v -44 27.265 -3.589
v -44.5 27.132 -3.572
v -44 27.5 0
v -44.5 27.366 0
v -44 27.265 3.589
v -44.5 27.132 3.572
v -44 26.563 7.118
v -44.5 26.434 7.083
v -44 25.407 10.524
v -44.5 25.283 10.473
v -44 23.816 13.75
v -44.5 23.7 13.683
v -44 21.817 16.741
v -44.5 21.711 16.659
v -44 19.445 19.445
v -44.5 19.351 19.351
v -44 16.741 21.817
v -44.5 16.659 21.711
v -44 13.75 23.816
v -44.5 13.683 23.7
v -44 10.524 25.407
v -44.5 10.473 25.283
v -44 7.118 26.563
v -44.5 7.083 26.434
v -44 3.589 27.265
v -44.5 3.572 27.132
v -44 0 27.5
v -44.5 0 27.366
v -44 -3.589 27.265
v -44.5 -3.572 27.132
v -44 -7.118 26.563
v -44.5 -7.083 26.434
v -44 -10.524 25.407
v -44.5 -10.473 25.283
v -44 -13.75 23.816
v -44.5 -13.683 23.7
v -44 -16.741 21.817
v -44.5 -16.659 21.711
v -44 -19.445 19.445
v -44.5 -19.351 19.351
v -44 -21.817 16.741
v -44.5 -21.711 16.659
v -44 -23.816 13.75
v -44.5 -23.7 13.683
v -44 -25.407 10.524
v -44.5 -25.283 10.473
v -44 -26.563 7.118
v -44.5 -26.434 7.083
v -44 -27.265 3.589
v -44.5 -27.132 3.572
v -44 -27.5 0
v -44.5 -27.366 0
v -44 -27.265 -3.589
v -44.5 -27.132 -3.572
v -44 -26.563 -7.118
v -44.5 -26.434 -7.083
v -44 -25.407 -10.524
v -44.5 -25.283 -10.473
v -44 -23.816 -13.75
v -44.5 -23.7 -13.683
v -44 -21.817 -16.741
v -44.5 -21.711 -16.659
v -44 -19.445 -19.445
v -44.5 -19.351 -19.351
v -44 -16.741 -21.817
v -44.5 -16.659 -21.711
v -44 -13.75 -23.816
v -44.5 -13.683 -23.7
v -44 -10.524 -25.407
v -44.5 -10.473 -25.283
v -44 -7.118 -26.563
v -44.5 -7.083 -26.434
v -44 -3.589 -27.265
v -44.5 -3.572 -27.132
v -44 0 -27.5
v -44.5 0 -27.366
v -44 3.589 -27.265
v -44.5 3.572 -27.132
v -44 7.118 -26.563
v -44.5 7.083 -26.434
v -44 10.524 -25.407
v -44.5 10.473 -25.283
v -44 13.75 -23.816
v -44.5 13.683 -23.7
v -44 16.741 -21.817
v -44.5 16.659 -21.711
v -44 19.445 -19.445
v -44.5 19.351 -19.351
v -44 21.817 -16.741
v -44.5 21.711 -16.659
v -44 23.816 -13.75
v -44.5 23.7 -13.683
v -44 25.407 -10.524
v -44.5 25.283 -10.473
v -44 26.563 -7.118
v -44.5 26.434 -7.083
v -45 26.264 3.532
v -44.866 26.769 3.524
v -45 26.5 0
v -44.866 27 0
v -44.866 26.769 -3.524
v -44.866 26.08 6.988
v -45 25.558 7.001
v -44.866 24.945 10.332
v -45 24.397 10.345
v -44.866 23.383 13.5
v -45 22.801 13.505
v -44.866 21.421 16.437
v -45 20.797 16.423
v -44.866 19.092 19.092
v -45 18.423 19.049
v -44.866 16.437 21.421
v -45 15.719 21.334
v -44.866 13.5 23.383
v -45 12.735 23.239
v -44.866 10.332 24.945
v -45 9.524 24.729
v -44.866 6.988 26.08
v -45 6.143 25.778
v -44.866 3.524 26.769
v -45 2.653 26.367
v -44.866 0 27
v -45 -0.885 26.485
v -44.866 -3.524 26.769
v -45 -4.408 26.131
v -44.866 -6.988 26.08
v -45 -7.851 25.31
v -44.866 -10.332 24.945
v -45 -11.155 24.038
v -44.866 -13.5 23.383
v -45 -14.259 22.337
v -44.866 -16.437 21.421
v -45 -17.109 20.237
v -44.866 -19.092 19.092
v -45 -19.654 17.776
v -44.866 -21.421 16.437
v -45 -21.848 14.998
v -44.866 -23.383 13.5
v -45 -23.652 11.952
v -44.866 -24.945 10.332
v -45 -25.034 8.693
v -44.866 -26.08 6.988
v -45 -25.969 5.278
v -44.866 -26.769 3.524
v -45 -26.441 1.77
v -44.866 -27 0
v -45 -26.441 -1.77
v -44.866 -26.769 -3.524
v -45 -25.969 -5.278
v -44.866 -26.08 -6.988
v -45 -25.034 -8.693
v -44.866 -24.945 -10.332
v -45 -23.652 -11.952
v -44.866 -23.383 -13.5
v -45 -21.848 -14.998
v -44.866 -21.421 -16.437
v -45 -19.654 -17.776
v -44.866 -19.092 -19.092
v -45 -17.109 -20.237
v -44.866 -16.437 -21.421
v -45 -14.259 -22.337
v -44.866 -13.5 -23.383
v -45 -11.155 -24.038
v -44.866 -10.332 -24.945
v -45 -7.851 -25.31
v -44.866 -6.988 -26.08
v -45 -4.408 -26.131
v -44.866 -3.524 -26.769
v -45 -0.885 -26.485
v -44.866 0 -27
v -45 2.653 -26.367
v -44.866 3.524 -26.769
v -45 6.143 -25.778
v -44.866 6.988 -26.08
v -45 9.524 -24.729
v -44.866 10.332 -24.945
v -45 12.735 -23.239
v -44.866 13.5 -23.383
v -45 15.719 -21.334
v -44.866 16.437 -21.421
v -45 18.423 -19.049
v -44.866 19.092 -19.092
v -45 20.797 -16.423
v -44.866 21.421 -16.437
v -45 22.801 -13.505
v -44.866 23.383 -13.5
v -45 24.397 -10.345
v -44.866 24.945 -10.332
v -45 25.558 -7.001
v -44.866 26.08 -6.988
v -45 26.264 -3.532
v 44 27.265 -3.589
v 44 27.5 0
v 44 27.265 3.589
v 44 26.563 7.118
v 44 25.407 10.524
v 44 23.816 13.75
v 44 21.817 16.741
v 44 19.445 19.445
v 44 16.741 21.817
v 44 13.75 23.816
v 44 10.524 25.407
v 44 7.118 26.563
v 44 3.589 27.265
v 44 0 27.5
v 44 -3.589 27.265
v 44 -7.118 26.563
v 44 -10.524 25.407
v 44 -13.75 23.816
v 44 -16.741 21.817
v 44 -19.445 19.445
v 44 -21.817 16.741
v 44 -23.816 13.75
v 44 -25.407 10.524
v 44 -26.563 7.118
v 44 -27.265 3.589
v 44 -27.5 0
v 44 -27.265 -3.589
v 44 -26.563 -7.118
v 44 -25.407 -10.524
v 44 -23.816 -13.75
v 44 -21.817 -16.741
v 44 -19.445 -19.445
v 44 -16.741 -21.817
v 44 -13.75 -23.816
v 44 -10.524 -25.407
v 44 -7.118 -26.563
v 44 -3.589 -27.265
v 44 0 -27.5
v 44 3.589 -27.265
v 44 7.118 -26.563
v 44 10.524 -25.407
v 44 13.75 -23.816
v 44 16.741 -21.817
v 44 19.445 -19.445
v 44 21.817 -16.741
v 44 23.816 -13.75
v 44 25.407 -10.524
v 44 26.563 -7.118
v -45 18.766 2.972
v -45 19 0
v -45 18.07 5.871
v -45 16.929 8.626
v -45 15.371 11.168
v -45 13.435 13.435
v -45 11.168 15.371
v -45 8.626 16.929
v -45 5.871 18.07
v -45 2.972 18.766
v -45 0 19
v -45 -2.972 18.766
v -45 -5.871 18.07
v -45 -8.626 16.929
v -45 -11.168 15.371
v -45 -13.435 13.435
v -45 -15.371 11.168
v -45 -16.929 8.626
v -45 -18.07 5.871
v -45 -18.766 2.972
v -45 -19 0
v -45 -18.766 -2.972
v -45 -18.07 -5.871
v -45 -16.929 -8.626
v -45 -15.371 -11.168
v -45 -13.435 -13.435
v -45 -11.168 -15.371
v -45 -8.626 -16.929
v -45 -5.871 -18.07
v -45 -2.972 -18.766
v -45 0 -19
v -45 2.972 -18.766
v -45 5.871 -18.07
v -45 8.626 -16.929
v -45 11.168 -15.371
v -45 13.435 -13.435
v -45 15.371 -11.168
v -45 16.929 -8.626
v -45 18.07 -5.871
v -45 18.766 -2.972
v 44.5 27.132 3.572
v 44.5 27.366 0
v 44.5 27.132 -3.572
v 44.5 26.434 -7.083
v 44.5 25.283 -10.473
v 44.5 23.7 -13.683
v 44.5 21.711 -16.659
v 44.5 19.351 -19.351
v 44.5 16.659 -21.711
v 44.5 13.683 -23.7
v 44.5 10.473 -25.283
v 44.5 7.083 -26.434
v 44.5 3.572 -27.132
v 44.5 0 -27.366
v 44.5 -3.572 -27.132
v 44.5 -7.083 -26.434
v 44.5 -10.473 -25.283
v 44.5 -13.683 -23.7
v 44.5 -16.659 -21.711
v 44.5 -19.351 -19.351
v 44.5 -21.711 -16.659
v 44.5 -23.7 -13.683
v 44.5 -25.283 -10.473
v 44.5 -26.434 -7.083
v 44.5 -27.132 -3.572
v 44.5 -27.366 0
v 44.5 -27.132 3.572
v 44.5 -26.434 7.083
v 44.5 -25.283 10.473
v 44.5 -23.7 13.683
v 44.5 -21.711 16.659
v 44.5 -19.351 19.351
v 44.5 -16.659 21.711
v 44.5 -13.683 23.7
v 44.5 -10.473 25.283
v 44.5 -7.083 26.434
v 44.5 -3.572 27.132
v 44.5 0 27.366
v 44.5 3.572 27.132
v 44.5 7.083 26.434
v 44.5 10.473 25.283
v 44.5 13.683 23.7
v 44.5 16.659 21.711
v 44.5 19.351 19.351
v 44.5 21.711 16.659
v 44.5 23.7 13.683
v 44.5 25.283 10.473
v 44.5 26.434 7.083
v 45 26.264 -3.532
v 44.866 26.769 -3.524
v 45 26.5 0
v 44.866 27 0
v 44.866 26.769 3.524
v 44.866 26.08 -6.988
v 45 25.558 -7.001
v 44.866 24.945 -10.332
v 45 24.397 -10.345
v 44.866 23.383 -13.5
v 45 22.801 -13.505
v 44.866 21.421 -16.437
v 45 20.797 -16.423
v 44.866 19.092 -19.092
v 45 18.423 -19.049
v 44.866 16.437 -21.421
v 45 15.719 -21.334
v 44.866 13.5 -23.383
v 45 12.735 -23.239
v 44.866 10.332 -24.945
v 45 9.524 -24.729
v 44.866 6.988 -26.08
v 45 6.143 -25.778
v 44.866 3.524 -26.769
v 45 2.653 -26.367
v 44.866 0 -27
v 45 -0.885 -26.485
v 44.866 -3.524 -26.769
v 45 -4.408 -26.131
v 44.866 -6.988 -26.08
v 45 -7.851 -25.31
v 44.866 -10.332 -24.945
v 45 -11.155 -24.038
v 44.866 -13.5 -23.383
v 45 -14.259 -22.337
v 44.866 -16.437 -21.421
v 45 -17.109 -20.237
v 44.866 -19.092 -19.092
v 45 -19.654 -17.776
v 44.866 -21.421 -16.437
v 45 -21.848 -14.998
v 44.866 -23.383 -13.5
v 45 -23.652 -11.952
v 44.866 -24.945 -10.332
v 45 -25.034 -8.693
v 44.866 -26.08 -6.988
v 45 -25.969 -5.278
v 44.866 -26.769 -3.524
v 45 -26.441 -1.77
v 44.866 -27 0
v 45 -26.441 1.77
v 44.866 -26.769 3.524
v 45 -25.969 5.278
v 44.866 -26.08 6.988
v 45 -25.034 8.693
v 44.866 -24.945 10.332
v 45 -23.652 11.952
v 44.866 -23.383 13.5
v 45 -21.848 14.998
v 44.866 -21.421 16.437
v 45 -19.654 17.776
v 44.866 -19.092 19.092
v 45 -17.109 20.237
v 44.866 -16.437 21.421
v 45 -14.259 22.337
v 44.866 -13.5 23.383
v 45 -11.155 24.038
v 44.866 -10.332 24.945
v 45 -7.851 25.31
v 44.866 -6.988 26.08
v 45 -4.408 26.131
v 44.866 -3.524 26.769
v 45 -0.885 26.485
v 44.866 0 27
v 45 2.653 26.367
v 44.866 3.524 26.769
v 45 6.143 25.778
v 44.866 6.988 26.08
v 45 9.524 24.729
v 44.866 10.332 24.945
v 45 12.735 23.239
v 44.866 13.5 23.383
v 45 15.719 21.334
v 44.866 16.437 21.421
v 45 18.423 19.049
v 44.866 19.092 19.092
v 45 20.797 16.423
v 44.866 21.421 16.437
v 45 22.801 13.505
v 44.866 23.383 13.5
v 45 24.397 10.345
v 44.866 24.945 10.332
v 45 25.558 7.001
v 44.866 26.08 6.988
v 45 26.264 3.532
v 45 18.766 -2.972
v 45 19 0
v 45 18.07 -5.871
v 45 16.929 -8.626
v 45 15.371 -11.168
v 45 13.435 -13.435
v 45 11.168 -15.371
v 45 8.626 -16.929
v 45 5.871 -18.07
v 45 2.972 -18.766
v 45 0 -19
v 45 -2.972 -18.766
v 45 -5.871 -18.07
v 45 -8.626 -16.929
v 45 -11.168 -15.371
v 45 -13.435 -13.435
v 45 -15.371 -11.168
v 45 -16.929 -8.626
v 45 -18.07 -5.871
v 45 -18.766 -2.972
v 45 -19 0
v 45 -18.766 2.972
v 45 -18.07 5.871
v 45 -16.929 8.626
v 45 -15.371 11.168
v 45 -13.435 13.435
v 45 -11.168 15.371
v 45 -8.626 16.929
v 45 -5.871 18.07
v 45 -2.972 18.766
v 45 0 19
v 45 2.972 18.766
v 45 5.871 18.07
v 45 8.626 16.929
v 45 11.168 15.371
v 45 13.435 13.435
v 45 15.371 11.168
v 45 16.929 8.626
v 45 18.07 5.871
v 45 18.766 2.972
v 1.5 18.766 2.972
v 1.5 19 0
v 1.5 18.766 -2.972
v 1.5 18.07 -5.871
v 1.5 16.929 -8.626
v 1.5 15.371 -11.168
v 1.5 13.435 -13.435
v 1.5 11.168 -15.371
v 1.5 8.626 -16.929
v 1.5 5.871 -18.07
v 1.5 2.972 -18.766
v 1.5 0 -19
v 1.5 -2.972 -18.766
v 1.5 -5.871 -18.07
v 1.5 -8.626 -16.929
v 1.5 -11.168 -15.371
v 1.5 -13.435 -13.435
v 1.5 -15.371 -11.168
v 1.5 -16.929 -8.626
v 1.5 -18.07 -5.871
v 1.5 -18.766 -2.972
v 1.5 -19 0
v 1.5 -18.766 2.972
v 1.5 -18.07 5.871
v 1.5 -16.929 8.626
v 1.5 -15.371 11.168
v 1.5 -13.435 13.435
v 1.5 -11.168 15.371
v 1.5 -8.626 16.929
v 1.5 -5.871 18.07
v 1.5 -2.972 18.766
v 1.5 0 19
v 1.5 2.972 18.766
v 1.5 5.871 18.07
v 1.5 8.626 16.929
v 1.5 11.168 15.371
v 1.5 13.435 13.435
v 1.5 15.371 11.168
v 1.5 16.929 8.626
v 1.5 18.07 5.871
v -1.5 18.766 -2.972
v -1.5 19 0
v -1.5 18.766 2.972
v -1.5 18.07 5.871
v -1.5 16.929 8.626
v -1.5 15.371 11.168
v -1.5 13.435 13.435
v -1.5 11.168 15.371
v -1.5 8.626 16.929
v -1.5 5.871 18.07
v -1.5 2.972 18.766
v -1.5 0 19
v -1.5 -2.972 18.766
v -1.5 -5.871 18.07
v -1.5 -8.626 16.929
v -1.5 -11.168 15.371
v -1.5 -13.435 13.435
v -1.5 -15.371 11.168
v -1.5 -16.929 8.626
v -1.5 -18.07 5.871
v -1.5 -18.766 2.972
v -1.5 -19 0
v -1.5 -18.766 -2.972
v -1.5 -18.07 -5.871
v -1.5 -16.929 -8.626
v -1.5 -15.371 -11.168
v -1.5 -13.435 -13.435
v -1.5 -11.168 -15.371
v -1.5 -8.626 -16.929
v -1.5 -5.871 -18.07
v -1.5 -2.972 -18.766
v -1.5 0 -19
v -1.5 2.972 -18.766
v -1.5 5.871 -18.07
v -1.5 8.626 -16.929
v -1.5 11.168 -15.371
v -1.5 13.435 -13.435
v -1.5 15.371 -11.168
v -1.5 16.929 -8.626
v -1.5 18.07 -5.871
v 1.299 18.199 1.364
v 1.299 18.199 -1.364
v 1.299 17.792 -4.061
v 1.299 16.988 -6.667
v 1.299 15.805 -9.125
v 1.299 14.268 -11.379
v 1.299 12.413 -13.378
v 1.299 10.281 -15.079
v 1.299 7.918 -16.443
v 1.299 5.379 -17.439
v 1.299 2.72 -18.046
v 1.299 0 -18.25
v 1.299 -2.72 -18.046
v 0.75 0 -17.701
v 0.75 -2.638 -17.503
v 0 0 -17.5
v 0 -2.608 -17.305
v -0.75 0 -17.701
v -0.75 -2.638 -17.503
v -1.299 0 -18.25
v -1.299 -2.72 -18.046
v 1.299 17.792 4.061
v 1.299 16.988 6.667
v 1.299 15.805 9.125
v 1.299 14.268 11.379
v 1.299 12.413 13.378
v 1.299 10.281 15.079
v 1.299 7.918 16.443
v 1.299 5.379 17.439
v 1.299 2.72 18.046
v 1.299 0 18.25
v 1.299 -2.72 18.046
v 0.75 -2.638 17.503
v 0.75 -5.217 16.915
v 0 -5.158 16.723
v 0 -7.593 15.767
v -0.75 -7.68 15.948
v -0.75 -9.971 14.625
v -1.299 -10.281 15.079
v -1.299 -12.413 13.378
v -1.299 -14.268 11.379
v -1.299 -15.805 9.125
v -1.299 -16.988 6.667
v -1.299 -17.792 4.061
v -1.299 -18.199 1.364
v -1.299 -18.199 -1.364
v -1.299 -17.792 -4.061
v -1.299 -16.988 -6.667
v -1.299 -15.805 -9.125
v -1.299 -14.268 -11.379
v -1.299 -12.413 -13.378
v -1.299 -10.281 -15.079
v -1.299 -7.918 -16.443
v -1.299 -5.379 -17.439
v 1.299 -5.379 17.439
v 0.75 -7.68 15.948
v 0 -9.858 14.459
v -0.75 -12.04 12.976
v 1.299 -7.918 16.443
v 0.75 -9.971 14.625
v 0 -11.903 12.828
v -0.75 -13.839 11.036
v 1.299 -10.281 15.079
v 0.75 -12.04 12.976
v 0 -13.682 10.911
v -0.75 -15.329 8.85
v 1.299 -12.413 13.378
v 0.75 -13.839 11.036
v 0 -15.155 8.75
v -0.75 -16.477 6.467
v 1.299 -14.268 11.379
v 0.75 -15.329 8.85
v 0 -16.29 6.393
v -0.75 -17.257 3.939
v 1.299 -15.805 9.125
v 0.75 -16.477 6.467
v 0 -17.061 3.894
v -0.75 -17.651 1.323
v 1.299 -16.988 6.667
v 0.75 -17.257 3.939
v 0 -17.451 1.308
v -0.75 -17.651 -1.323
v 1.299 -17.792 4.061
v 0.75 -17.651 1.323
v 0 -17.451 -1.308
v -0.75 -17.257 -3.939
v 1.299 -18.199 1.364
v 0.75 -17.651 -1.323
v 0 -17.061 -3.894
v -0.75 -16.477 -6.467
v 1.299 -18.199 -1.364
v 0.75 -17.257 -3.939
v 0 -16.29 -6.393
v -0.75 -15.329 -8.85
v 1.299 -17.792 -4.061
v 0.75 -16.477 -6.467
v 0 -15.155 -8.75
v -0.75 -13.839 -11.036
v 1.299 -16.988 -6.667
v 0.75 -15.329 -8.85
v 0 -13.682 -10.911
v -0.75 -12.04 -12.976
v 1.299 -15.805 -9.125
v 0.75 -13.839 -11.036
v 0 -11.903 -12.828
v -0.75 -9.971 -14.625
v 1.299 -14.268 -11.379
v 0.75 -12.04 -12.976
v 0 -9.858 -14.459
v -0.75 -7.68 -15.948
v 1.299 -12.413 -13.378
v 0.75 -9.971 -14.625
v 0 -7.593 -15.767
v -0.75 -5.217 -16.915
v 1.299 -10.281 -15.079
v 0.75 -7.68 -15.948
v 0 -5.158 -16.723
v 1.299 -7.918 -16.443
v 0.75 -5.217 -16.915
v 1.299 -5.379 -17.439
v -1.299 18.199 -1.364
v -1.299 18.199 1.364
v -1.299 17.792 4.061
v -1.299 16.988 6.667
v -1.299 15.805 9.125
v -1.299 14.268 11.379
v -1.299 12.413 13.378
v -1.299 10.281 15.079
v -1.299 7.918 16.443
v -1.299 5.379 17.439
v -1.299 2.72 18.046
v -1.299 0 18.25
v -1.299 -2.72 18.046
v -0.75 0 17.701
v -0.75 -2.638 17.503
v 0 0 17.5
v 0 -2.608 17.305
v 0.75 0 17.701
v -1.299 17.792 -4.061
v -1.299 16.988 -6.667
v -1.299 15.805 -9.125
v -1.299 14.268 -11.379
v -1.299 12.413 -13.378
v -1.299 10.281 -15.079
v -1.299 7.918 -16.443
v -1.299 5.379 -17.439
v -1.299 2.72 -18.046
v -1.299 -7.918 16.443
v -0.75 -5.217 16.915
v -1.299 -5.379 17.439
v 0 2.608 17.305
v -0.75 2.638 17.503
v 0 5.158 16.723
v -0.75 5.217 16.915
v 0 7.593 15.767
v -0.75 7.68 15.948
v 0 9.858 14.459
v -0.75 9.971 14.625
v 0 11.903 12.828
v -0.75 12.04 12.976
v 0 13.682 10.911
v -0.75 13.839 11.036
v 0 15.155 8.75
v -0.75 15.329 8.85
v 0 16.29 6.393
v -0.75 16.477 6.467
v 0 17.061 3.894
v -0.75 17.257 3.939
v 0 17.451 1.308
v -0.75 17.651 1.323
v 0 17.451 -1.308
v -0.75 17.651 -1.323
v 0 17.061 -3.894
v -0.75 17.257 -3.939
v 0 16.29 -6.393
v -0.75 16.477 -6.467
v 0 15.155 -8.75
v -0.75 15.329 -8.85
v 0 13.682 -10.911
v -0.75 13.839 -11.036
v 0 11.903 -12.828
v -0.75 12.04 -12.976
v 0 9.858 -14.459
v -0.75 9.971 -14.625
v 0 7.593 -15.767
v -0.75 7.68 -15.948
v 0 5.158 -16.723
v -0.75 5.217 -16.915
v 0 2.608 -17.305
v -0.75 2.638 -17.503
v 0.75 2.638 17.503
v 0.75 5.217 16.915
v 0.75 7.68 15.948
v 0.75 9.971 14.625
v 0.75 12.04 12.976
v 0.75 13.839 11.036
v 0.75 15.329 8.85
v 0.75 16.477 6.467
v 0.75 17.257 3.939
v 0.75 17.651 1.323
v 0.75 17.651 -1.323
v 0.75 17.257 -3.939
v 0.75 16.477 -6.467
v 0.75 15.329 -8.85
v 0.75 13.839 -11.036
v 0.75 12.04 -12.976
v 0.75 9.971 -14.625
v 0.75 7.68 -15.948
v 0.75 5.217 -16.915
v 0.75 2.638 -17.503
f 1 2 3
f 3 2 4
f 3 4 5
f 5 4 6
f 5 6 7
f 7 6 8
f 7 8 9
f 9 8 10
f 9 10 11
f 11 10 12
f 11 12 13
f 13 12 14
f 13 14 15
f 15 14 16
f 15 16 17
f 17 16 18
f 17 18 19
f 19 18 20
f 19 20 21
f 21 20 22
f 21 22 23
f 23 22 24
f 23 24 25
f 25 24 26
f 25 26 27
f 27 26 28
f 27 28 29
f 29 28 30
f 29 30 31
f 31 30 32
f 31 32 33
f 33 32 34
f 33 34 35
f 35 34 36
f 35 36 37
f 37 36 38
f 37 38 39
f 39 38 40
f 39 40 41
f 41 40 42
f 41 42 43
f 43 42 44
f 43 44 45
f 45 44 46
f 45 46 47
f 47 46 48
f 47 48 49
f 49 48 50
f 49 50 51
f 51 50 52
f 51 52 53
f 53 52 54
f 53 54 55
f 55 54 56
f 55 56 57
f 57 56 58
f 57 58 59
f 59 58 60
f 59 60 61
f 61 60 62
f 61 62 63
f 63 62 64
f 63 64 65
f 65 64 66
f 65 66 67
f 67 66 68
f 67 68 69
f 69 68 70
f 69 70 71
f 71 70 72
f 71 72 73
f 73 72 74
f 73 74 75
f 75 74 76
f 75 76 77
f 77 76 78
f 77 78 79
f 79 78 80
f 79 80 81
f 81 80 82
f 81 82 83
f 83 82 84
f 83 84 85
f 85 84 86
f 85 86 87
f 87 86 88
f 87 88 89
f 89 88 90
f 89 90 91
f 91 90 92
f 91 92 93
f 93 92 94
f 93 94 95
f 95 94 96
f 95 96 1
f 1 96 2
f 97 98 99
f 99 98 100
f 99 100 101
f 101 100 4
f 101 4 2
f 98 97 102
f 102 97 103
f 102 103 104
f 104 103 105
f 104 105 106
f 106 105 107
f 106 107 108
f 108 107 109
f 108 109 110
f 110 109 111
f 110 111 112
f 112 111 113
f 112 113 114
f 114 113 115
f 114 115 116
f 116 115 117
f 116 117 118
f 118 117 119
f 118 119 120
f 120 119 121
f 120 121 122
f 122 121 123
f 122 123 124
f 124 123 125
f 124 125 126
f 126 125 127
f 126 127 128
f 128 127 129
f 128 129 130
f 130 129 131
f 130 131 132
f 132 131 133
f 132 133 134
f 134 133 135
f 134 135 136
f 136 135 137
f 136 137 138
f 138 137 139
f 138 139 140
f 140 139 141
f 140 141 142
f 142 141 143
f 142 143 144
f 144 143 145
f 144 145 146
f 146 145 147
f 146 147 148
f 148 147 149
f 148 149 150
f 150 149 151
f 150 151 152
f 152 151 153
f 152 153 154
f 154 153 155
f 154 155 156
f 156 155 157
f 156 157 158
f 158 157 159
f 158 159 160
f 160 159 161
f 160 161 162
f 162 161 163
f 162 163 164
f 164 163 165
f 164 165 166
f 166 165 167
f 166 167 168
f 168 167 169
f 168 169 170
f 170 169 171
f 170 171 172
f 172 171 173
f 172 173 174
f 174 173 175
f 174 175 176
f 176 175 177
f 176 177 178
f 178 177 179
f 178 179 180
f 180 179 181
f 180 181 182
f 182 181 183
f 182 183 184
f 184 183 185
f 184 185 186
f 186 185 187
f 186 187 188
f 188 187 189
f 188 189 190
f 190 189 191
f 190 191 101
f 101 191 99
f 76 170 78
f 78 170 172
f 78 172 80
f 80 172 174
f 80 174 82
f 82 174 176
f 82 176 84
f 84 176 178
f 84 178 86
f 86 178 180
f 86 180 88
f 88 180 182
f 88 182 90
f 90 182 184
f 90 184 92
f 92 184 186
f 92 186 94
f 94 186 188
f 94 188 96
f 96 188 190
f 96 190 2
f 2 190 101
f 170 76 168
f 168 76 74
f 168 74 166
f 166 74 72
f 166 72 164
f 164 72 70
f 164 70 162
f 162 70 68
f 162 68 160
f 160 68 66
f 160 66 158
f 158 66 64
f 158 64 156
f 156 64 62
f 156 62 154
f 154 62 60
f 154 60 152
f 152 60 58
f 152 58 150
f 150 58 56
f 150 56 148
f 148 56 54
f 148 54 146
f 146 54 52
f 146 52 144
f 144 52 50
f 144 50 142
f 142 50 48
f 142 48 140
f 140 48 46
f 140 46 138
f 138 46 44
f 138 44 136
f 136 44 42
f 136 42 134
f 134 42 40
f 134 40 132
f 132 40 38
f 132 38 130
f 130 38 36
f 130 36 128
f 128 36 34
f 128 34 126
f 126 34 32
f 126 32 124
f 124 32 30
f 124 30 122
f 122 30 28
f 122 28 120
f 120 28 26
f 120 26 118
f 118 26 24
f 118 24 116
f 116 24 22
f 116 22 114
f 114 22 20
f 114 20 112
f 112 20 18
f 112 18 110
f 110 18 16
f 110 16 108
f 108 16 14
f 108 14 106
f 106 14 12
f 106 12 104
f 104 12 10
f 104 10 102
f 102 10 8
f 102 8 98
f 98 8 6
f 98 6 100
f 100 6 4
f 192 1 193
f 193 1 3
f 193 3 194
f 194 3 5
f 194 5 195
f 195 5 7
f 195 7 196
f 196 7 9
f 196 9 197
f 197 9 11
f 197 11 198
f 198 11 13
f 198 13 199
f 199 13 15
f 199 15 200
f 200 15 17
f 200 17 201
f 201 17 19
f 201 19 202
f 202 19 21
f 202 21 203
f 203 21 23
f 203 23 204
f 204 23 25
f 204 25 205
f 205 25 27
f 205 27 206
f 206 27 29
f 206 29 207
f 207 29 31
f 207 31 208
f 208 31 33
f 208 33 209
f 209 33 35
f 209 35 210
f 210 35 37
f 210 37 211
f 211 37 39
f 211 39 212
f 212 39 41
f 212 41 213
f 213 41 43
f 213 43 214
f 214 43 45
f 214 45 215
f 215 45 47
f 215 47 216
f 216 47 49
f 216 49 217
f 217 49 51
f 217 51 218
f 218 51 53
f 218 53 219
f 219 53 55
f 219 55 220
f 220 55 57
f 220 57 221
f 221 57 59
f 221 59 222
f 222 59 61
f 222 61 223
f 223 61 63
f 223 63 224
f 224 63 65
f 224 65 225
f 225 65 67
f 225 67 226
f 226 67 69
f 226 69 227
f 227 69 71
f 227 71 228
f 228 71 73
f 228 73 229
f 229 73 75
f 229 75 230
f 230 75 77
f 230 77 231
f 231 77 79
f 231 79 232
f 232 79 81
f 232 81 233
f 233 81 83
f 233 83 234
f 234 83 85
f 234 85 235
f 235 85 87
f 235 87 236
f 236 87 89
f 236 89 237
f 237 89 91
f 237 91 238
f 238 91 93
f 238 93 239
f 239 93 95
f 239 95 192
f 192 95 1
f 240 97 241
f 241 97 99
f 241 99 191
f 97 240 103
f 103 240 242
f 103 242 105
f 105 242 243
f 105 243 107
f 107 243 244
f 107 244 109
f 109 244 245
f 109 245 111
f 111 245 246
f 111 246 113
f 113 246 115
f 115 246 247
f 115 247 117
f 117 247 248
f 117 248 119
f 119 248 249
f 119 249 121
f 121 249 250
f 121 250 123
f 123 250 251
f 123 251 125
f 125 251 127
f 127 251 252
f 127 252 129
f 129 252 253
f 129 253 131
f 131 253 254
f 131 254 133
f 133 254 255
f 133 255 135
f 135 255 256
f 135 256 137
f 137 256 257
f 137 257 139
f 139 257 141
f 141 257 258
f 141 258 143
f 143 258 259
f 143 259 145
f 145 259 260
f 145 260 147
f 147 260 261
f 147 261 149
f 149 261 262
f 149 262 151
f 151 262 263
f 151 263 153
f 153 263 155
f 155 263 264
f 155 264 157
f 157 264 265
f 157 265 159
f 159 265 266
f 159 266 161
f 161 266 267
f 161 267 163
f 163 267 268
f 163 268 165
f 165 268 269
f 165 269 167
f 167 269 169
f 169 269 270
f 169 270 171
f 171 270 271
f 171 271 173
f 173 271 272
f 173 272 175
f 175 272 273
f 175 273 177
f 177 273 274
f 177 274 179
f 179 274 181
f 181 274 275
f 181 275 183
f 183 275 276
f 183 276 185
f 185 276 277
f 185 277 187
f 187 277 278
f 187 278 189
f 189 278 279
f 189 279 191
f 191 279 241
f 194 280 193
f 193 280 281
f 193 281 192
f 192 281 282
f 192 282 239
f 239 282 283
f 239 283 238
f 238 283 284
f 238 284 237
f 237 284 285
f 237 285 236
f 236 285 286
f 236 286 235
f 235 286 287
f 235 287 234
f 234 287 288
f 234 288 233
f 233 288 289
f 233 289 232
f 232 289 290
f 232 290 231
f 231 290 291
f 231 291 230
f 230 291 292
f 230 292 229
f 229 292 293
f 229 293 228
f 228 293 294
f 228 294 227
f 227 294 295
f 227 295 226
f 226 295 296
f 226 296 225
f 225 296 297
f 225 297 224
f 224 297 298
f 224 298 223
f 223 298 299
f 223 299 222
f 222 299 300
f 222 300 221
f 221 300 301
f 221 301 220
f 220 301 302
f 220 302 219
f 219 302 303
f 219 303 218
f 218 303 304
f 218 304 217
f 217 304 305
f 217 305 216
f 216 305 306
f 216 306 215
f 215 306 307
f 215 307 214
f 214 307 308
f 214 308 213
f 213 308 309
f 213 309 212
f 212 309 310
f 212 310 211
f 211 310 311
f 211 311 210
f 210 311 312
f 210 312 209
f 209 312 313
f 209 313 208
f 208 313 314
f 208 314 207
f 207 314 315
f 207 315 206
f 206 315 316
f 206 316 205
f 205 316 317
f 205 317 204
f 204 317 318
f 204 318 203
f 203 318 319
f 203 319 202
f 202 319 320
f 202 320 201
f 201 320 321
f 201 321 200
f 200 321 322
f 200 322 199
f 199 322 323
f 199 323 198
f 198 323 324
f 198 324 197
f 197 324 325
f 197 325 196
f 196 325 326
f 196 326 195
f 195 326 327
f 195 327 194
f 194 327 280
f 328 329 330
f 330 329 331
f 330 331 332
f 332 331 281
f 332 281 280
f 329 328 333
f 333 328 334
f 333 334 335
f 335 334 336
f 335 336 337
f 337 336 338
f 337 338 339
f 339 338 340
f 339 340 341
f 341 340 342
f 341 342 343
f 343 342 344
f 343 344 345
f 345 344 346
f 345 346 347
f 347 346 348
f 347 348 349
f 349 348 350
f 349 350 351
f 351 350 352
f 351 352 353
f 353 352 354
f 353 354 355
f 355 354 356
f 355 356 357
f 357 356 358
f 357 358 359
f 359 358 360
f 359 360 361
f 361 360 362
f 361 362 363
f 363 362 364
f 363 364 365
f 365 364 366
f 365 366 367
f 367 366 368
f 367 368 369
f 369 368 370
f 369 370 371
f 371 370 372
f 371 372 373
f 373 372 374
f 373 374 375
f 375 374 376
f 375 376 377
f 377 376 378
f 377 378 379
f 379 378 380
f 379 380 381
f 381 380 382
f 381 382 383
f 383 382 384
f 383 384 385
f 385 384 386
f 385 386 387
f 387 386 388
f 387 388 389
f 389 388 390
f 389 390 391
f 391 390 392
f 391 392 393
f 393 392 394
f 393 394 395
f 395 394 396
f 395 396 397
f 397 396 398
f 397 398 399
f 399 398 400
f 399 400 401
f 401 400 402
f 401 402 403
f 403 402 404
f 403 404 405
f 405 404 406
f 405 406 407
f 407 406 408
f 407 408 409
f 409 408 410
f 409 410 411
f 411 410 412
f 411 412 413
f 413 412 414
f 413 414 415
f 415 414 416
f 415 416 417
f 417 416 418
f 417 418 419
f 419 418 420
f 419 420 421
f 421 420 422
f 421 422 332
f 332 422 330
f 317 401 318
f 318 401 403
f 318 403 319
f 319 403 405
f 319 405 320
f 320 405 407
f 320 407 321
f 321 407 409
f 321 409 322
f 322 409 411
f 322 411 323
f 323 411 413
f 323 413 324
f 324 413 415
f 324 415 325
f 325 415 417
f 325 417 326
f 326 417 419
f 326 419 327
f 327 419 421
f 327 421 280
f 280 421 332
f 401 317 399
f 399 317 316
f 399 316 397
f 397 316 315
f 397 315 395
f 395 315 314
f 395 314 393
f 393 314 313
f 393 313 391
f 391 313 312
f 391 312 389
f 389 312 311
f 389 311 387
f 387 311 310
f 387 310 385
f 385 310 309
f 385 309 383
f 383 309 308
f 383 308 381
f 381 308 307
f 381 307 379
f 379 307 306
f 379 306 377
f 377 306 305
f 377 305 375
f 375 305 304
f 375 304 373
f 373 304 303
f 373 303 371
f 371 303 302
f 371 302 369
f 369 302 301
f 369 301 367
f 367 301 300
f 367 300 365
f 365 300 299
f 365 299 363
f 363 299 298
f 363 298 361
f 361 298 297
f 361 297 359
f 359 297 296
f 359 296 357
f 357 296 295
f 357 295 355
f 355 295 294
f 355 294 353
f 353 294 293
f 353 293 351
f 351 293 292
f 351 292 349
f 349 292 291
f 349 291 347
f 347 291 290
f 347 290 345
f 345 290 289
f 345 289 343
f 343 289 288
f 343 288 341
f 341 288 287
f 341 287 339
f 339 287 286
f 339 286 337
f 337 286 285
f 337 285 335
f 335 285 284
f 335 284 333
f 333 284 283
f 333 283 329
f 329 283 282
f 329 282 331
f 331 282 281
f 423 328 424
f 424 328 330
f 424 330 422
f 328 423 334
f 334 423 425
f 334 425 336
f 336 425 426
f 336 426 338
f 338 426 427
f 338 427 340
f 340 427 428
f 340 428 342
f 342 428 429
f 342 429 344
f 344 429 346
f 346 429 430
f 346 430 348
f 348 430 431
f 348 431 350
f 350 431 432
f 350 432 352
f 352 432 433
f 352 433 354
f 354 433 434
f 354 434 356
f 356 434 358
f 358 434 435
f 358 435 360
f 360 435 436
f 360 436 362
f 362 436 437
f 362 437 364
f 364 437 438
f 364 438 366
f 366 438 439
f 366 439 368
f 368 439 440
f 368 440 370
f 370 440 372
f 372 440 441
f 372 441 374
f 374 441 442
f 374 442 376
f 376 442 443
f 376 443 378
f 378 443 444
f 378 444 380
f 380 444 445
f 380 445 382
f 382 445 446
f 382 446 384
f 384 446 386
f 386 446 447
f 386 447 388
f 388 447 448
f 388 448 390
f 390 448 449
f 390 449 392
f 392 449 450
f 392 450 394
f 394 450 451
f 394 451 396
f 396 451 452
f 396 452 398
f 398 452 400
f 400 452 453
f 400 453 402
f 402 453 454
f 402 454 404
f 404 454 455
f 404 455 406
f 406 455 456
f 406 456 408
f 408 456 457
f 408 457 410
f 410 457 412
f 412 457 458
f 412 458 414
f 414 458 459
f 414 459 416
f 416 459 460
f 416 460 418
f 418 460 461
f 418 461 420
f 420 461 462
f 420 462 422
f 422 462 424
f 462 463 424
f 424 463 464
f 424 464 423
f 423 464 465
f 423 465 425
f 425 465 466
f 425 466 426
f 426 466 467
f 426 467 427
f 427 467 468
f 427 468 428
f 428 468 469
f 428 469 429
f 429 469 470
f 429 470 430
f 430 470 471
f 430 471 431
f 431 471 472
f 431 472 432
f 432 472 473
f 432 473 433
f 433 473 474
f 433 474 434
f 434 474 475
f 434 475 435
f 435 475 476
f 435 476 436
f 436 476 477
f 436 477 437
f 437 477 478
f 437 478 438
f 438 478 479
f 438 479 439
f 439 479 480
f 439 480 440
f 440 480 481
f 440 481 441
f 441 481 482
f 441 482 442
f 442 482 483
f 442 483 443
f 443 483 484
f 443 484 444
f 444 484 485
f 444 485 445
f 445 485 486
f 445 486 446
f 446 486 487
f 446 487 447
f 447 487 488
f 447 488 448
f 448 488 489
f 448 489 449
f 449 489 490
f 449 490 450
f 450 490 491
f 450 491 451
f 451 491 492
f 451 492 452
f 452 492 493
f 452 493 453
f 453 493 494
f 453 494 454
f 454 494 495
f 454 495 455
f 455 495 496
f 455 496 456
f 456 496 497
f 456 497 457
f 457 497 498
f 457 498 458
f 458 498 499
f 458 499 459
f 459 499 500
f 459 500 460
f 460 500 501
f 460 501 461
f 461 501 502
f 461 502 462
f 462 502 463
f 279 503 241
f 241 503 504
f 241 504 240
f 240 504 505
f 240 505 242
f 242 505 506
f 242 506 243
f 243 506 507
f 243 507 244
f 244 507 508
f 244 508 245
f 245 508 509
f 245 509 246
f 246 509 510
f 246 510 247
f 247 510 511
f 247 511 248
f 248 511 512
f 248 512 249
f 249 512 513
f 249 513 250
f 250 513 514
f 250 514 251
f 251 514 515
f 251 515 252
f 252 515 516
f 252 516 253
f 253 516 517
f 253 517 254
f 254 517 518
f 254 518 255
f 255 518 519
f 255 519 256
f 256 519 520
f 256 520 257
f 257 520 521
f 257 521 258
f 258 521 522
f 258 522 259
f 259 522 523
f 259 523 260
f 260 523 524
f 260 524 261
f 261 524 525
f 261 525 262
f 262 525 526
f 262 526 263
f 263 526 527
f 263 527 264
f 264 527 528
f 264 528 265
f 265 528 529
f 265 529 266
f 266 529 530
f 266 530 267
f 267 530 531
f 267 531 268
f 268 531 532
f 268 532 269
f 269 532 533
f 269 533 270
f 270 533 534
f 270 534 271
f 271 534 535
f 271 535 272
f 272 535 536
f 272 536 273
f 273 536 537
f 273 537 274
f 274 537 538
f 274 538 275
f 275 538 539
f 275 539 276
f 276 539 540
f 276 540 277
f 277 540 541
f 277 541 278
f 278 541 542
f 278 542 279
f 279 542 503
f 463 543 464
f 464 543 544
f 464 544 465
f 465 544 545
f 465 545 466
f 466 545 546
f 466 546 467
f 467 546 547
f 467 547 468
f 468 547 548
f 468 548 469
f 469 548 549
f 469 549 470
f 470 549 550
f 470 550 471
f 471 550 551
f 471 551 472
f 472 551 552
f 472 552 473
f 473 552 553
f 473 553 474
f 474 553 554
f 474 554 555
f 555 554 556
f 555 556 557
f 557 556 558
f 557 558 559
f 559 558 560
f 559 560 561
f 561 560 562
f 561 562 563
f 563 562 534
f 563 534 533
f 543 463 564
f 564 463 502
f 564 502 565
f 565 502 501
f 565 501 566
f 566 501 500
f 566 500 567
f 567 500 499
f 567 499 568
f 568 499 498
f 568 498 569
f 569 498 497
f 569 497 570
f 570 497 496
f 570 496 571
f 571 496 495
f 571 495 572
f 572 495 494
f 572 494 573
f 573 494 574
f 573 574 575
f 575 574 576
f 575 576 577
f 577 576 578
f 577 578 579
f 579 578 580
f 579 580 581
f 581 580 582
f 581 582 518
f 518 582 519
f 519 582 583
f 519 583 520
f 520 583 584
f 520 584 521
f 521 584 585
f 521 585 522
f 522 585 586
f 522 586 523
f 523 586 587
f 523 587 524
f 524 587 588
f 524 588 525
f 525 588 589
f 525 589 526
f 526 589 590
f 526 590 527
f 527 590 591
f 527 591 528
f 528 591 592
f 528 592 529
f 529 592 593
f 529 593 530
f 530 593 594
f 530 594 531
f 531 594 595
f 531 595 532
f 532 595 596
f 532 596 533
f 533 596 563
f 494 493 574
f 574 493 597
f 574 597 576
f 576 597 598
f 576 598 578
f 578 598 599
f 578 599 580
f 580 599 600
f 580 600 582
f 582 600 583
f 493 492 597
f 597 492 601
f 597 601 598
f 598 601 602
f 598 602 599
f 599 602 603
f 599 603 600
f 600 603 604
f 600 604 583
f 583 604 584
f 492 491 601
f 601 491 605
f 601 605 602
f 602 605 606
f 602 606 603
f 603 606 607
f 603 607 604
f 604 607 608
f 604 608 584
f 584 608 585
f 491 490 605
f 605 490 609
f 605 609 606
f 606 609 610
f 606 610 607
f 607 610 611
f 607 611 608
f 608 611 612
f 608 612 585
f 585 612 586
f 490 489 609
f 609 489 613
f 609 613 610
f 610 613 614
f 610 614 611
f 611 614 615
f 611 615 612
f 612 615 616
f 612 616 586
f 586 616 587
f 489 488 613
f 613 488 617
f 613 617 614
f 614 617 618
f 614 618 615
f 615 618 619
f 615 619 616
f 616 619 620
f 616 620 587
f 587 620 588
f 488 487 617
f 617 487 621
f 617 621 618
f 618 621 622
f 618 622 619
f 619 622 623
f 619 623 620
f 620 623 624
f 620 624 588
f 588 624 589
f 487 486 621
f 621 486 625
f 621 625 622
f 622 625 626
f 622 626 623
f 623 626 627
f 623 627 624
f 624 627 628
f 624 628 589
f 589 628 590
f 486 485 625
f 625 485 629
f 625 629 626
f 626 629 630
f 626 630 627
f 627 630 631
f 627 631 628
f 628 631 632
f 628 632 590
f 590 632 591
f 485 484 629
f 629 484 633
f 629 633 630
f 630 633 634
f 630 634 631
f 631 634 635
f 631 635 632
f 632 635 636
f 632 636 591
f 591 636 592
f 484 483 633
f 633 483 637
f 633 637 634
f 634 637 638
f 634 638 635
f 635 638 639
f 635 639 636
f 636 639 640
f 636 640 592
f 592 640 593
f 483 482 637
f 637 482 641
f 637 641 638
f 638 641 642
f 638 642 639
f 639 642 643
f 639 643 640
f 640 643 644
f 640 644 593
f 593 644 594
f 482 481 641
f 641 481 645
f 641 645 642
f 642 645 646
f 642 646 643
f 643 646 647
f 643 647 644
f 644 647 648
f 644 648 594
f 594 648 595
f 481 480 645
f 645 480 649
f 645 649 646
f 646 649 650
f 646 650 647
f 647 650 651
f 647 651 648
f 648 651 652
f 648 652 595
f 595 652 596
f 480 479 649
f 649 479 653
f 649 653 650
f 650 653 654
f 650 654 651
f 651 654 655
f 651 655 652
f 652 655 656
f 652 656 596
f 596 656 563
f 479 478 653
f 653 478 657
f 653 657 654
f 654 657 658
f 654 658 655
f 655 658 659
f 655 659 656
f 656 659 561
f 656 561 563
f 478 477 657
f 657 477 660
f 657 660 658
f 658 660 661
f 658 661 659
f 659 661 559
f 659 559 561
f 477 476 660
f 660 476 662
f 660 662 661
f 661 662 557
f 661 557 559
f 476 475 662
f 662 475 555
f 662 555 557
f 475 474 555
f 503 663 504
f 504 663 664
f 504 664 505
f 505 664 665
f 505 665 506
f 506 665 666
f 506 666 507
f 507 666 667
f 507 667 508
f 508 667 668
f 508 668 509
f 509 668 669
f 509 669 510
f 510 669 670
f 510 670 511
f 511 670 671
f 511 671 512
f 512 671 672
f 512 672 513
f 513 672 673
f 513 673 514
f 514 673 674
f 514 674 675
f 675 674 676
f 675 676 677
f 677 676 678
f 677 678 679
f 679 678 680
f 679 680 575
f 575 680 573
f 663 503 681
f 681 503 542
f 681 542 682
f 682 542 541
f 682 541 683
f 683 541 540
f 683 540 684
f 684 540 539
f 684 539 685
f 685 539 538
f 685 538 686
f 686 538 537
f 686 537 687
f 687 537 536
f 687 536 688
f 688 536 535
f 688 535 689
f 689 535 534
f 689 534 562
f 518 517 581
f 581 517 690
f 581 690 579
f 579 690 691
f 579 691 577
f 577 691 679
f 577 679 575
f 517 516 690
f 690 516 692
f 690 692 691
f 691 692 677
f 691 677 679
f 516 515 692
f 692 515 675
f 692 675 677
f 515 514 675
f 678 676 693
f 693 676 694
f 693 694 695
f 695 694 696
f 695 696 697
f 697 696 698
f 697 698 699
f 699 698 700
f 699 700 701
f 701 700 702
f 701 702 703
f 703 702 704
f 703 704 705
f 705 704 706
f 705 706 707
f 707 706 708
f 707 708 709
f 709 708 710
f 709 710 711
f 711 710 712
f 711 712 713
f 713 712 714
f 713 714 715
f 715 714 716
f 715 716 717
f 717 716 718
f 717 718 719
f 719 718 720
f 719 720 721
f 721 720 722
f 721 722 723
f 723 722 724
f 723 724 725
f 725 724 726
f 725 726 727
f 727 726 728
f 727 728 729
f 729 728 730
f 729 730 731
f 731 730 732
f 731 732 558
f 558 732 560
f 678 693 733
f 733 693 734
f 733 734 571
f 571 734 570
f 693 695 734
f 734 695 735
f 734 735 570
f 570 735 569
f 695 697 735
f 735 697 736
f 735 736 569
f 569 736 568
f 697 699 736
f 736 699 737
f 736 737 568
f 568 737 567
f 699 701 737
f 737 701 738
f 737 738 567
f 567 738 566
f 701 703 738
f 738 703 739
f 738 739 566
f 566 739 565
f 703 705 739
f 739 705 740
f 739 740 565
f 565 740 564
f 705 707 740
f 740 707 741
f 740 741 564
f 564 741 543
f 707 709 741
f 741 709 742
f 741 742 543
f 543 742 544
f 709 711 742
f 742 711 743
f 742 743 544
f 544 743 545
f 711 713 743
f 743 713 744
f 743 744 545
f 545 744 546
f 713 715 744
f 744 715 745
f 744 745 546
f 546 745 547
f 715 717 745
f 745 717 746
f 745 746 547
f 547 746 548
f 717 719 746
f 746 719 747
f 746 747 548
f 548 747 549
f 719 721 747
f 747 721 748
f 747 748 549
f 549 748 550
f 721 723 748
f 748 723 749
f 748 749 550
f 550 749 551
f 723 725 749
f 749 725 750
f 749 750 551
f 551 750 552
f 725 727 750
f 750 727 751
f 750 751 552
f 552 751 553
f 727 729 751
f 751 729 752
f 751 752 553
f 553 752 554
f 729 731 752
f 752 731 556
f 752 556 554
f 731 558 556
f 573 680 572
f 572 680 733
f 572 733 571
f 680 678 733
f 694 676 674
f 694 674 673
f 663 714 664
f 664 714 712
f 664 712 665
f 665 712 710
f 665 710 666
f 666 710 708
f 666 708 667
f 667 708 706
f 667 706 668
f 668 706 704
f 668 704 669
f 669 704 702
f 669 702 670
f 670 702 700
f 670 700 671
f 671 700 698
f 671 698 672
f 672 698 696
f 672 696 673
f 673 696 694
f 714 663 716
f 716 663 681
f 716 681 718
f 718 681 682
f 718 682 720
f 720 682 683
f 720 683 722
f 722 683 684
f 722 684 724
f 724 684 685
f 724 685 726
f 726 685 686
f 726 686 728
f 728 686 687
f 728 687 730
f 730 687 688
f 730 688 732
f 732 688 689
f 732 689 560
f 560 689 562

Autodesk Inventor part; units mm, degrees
ref_plane "YZ Plane" through (0, 0, 0) normal (1, 0, 0) x (0, 1, 0)
ref_plane "XZ Plane" through (0, 0, 0) normal (0, 1, 0) x (-1, 0, 0)
ref_plane "XY Plane" through (0, 0, 0) normal (0, 0, 1) x (1, 0, 0)
sketch "Sketch1" plane through (0, 0, 0) normal (0, 1, 0) x (-1, 0, 0)
  point P0 (0, 0)
sketch "Sketch2" plane through (0, 0, 0) normal (0, 1, 0) x (-1, 0, 0)
  line L0 (29.6036, 0) -> (-33.9054, 0)
  circle A0 centre (0, -19) radius 1.5
  point P0 (0, 0)
  dimension "d0" = 19
  dimension "d1" = 3
revolve "Revolution1" add sketch "Sketch2" angle 360 about axis through (-29.6036, 0, 0) along (1, 0, 0)
sketch "Sketch3" plane through (0, 0, 0) normal (1, 0, 0) x (0, 1, 0)
  circle A0 centre (0, 0) radius 19
  circle A1 centre (0, 0) radius 27.5
  dimension "d3" = 38
  dimension "d4" = 55
extrude "Extrusion1" add sketch "Sketch3" along normal mid plane 90
fillet "Fillet1" radius 1 1 edges at (45, -27.5, 0)
fillet "Fillet2" radius 1 1 edges at (-45, -27.5, 0)
properties part number "linker"
